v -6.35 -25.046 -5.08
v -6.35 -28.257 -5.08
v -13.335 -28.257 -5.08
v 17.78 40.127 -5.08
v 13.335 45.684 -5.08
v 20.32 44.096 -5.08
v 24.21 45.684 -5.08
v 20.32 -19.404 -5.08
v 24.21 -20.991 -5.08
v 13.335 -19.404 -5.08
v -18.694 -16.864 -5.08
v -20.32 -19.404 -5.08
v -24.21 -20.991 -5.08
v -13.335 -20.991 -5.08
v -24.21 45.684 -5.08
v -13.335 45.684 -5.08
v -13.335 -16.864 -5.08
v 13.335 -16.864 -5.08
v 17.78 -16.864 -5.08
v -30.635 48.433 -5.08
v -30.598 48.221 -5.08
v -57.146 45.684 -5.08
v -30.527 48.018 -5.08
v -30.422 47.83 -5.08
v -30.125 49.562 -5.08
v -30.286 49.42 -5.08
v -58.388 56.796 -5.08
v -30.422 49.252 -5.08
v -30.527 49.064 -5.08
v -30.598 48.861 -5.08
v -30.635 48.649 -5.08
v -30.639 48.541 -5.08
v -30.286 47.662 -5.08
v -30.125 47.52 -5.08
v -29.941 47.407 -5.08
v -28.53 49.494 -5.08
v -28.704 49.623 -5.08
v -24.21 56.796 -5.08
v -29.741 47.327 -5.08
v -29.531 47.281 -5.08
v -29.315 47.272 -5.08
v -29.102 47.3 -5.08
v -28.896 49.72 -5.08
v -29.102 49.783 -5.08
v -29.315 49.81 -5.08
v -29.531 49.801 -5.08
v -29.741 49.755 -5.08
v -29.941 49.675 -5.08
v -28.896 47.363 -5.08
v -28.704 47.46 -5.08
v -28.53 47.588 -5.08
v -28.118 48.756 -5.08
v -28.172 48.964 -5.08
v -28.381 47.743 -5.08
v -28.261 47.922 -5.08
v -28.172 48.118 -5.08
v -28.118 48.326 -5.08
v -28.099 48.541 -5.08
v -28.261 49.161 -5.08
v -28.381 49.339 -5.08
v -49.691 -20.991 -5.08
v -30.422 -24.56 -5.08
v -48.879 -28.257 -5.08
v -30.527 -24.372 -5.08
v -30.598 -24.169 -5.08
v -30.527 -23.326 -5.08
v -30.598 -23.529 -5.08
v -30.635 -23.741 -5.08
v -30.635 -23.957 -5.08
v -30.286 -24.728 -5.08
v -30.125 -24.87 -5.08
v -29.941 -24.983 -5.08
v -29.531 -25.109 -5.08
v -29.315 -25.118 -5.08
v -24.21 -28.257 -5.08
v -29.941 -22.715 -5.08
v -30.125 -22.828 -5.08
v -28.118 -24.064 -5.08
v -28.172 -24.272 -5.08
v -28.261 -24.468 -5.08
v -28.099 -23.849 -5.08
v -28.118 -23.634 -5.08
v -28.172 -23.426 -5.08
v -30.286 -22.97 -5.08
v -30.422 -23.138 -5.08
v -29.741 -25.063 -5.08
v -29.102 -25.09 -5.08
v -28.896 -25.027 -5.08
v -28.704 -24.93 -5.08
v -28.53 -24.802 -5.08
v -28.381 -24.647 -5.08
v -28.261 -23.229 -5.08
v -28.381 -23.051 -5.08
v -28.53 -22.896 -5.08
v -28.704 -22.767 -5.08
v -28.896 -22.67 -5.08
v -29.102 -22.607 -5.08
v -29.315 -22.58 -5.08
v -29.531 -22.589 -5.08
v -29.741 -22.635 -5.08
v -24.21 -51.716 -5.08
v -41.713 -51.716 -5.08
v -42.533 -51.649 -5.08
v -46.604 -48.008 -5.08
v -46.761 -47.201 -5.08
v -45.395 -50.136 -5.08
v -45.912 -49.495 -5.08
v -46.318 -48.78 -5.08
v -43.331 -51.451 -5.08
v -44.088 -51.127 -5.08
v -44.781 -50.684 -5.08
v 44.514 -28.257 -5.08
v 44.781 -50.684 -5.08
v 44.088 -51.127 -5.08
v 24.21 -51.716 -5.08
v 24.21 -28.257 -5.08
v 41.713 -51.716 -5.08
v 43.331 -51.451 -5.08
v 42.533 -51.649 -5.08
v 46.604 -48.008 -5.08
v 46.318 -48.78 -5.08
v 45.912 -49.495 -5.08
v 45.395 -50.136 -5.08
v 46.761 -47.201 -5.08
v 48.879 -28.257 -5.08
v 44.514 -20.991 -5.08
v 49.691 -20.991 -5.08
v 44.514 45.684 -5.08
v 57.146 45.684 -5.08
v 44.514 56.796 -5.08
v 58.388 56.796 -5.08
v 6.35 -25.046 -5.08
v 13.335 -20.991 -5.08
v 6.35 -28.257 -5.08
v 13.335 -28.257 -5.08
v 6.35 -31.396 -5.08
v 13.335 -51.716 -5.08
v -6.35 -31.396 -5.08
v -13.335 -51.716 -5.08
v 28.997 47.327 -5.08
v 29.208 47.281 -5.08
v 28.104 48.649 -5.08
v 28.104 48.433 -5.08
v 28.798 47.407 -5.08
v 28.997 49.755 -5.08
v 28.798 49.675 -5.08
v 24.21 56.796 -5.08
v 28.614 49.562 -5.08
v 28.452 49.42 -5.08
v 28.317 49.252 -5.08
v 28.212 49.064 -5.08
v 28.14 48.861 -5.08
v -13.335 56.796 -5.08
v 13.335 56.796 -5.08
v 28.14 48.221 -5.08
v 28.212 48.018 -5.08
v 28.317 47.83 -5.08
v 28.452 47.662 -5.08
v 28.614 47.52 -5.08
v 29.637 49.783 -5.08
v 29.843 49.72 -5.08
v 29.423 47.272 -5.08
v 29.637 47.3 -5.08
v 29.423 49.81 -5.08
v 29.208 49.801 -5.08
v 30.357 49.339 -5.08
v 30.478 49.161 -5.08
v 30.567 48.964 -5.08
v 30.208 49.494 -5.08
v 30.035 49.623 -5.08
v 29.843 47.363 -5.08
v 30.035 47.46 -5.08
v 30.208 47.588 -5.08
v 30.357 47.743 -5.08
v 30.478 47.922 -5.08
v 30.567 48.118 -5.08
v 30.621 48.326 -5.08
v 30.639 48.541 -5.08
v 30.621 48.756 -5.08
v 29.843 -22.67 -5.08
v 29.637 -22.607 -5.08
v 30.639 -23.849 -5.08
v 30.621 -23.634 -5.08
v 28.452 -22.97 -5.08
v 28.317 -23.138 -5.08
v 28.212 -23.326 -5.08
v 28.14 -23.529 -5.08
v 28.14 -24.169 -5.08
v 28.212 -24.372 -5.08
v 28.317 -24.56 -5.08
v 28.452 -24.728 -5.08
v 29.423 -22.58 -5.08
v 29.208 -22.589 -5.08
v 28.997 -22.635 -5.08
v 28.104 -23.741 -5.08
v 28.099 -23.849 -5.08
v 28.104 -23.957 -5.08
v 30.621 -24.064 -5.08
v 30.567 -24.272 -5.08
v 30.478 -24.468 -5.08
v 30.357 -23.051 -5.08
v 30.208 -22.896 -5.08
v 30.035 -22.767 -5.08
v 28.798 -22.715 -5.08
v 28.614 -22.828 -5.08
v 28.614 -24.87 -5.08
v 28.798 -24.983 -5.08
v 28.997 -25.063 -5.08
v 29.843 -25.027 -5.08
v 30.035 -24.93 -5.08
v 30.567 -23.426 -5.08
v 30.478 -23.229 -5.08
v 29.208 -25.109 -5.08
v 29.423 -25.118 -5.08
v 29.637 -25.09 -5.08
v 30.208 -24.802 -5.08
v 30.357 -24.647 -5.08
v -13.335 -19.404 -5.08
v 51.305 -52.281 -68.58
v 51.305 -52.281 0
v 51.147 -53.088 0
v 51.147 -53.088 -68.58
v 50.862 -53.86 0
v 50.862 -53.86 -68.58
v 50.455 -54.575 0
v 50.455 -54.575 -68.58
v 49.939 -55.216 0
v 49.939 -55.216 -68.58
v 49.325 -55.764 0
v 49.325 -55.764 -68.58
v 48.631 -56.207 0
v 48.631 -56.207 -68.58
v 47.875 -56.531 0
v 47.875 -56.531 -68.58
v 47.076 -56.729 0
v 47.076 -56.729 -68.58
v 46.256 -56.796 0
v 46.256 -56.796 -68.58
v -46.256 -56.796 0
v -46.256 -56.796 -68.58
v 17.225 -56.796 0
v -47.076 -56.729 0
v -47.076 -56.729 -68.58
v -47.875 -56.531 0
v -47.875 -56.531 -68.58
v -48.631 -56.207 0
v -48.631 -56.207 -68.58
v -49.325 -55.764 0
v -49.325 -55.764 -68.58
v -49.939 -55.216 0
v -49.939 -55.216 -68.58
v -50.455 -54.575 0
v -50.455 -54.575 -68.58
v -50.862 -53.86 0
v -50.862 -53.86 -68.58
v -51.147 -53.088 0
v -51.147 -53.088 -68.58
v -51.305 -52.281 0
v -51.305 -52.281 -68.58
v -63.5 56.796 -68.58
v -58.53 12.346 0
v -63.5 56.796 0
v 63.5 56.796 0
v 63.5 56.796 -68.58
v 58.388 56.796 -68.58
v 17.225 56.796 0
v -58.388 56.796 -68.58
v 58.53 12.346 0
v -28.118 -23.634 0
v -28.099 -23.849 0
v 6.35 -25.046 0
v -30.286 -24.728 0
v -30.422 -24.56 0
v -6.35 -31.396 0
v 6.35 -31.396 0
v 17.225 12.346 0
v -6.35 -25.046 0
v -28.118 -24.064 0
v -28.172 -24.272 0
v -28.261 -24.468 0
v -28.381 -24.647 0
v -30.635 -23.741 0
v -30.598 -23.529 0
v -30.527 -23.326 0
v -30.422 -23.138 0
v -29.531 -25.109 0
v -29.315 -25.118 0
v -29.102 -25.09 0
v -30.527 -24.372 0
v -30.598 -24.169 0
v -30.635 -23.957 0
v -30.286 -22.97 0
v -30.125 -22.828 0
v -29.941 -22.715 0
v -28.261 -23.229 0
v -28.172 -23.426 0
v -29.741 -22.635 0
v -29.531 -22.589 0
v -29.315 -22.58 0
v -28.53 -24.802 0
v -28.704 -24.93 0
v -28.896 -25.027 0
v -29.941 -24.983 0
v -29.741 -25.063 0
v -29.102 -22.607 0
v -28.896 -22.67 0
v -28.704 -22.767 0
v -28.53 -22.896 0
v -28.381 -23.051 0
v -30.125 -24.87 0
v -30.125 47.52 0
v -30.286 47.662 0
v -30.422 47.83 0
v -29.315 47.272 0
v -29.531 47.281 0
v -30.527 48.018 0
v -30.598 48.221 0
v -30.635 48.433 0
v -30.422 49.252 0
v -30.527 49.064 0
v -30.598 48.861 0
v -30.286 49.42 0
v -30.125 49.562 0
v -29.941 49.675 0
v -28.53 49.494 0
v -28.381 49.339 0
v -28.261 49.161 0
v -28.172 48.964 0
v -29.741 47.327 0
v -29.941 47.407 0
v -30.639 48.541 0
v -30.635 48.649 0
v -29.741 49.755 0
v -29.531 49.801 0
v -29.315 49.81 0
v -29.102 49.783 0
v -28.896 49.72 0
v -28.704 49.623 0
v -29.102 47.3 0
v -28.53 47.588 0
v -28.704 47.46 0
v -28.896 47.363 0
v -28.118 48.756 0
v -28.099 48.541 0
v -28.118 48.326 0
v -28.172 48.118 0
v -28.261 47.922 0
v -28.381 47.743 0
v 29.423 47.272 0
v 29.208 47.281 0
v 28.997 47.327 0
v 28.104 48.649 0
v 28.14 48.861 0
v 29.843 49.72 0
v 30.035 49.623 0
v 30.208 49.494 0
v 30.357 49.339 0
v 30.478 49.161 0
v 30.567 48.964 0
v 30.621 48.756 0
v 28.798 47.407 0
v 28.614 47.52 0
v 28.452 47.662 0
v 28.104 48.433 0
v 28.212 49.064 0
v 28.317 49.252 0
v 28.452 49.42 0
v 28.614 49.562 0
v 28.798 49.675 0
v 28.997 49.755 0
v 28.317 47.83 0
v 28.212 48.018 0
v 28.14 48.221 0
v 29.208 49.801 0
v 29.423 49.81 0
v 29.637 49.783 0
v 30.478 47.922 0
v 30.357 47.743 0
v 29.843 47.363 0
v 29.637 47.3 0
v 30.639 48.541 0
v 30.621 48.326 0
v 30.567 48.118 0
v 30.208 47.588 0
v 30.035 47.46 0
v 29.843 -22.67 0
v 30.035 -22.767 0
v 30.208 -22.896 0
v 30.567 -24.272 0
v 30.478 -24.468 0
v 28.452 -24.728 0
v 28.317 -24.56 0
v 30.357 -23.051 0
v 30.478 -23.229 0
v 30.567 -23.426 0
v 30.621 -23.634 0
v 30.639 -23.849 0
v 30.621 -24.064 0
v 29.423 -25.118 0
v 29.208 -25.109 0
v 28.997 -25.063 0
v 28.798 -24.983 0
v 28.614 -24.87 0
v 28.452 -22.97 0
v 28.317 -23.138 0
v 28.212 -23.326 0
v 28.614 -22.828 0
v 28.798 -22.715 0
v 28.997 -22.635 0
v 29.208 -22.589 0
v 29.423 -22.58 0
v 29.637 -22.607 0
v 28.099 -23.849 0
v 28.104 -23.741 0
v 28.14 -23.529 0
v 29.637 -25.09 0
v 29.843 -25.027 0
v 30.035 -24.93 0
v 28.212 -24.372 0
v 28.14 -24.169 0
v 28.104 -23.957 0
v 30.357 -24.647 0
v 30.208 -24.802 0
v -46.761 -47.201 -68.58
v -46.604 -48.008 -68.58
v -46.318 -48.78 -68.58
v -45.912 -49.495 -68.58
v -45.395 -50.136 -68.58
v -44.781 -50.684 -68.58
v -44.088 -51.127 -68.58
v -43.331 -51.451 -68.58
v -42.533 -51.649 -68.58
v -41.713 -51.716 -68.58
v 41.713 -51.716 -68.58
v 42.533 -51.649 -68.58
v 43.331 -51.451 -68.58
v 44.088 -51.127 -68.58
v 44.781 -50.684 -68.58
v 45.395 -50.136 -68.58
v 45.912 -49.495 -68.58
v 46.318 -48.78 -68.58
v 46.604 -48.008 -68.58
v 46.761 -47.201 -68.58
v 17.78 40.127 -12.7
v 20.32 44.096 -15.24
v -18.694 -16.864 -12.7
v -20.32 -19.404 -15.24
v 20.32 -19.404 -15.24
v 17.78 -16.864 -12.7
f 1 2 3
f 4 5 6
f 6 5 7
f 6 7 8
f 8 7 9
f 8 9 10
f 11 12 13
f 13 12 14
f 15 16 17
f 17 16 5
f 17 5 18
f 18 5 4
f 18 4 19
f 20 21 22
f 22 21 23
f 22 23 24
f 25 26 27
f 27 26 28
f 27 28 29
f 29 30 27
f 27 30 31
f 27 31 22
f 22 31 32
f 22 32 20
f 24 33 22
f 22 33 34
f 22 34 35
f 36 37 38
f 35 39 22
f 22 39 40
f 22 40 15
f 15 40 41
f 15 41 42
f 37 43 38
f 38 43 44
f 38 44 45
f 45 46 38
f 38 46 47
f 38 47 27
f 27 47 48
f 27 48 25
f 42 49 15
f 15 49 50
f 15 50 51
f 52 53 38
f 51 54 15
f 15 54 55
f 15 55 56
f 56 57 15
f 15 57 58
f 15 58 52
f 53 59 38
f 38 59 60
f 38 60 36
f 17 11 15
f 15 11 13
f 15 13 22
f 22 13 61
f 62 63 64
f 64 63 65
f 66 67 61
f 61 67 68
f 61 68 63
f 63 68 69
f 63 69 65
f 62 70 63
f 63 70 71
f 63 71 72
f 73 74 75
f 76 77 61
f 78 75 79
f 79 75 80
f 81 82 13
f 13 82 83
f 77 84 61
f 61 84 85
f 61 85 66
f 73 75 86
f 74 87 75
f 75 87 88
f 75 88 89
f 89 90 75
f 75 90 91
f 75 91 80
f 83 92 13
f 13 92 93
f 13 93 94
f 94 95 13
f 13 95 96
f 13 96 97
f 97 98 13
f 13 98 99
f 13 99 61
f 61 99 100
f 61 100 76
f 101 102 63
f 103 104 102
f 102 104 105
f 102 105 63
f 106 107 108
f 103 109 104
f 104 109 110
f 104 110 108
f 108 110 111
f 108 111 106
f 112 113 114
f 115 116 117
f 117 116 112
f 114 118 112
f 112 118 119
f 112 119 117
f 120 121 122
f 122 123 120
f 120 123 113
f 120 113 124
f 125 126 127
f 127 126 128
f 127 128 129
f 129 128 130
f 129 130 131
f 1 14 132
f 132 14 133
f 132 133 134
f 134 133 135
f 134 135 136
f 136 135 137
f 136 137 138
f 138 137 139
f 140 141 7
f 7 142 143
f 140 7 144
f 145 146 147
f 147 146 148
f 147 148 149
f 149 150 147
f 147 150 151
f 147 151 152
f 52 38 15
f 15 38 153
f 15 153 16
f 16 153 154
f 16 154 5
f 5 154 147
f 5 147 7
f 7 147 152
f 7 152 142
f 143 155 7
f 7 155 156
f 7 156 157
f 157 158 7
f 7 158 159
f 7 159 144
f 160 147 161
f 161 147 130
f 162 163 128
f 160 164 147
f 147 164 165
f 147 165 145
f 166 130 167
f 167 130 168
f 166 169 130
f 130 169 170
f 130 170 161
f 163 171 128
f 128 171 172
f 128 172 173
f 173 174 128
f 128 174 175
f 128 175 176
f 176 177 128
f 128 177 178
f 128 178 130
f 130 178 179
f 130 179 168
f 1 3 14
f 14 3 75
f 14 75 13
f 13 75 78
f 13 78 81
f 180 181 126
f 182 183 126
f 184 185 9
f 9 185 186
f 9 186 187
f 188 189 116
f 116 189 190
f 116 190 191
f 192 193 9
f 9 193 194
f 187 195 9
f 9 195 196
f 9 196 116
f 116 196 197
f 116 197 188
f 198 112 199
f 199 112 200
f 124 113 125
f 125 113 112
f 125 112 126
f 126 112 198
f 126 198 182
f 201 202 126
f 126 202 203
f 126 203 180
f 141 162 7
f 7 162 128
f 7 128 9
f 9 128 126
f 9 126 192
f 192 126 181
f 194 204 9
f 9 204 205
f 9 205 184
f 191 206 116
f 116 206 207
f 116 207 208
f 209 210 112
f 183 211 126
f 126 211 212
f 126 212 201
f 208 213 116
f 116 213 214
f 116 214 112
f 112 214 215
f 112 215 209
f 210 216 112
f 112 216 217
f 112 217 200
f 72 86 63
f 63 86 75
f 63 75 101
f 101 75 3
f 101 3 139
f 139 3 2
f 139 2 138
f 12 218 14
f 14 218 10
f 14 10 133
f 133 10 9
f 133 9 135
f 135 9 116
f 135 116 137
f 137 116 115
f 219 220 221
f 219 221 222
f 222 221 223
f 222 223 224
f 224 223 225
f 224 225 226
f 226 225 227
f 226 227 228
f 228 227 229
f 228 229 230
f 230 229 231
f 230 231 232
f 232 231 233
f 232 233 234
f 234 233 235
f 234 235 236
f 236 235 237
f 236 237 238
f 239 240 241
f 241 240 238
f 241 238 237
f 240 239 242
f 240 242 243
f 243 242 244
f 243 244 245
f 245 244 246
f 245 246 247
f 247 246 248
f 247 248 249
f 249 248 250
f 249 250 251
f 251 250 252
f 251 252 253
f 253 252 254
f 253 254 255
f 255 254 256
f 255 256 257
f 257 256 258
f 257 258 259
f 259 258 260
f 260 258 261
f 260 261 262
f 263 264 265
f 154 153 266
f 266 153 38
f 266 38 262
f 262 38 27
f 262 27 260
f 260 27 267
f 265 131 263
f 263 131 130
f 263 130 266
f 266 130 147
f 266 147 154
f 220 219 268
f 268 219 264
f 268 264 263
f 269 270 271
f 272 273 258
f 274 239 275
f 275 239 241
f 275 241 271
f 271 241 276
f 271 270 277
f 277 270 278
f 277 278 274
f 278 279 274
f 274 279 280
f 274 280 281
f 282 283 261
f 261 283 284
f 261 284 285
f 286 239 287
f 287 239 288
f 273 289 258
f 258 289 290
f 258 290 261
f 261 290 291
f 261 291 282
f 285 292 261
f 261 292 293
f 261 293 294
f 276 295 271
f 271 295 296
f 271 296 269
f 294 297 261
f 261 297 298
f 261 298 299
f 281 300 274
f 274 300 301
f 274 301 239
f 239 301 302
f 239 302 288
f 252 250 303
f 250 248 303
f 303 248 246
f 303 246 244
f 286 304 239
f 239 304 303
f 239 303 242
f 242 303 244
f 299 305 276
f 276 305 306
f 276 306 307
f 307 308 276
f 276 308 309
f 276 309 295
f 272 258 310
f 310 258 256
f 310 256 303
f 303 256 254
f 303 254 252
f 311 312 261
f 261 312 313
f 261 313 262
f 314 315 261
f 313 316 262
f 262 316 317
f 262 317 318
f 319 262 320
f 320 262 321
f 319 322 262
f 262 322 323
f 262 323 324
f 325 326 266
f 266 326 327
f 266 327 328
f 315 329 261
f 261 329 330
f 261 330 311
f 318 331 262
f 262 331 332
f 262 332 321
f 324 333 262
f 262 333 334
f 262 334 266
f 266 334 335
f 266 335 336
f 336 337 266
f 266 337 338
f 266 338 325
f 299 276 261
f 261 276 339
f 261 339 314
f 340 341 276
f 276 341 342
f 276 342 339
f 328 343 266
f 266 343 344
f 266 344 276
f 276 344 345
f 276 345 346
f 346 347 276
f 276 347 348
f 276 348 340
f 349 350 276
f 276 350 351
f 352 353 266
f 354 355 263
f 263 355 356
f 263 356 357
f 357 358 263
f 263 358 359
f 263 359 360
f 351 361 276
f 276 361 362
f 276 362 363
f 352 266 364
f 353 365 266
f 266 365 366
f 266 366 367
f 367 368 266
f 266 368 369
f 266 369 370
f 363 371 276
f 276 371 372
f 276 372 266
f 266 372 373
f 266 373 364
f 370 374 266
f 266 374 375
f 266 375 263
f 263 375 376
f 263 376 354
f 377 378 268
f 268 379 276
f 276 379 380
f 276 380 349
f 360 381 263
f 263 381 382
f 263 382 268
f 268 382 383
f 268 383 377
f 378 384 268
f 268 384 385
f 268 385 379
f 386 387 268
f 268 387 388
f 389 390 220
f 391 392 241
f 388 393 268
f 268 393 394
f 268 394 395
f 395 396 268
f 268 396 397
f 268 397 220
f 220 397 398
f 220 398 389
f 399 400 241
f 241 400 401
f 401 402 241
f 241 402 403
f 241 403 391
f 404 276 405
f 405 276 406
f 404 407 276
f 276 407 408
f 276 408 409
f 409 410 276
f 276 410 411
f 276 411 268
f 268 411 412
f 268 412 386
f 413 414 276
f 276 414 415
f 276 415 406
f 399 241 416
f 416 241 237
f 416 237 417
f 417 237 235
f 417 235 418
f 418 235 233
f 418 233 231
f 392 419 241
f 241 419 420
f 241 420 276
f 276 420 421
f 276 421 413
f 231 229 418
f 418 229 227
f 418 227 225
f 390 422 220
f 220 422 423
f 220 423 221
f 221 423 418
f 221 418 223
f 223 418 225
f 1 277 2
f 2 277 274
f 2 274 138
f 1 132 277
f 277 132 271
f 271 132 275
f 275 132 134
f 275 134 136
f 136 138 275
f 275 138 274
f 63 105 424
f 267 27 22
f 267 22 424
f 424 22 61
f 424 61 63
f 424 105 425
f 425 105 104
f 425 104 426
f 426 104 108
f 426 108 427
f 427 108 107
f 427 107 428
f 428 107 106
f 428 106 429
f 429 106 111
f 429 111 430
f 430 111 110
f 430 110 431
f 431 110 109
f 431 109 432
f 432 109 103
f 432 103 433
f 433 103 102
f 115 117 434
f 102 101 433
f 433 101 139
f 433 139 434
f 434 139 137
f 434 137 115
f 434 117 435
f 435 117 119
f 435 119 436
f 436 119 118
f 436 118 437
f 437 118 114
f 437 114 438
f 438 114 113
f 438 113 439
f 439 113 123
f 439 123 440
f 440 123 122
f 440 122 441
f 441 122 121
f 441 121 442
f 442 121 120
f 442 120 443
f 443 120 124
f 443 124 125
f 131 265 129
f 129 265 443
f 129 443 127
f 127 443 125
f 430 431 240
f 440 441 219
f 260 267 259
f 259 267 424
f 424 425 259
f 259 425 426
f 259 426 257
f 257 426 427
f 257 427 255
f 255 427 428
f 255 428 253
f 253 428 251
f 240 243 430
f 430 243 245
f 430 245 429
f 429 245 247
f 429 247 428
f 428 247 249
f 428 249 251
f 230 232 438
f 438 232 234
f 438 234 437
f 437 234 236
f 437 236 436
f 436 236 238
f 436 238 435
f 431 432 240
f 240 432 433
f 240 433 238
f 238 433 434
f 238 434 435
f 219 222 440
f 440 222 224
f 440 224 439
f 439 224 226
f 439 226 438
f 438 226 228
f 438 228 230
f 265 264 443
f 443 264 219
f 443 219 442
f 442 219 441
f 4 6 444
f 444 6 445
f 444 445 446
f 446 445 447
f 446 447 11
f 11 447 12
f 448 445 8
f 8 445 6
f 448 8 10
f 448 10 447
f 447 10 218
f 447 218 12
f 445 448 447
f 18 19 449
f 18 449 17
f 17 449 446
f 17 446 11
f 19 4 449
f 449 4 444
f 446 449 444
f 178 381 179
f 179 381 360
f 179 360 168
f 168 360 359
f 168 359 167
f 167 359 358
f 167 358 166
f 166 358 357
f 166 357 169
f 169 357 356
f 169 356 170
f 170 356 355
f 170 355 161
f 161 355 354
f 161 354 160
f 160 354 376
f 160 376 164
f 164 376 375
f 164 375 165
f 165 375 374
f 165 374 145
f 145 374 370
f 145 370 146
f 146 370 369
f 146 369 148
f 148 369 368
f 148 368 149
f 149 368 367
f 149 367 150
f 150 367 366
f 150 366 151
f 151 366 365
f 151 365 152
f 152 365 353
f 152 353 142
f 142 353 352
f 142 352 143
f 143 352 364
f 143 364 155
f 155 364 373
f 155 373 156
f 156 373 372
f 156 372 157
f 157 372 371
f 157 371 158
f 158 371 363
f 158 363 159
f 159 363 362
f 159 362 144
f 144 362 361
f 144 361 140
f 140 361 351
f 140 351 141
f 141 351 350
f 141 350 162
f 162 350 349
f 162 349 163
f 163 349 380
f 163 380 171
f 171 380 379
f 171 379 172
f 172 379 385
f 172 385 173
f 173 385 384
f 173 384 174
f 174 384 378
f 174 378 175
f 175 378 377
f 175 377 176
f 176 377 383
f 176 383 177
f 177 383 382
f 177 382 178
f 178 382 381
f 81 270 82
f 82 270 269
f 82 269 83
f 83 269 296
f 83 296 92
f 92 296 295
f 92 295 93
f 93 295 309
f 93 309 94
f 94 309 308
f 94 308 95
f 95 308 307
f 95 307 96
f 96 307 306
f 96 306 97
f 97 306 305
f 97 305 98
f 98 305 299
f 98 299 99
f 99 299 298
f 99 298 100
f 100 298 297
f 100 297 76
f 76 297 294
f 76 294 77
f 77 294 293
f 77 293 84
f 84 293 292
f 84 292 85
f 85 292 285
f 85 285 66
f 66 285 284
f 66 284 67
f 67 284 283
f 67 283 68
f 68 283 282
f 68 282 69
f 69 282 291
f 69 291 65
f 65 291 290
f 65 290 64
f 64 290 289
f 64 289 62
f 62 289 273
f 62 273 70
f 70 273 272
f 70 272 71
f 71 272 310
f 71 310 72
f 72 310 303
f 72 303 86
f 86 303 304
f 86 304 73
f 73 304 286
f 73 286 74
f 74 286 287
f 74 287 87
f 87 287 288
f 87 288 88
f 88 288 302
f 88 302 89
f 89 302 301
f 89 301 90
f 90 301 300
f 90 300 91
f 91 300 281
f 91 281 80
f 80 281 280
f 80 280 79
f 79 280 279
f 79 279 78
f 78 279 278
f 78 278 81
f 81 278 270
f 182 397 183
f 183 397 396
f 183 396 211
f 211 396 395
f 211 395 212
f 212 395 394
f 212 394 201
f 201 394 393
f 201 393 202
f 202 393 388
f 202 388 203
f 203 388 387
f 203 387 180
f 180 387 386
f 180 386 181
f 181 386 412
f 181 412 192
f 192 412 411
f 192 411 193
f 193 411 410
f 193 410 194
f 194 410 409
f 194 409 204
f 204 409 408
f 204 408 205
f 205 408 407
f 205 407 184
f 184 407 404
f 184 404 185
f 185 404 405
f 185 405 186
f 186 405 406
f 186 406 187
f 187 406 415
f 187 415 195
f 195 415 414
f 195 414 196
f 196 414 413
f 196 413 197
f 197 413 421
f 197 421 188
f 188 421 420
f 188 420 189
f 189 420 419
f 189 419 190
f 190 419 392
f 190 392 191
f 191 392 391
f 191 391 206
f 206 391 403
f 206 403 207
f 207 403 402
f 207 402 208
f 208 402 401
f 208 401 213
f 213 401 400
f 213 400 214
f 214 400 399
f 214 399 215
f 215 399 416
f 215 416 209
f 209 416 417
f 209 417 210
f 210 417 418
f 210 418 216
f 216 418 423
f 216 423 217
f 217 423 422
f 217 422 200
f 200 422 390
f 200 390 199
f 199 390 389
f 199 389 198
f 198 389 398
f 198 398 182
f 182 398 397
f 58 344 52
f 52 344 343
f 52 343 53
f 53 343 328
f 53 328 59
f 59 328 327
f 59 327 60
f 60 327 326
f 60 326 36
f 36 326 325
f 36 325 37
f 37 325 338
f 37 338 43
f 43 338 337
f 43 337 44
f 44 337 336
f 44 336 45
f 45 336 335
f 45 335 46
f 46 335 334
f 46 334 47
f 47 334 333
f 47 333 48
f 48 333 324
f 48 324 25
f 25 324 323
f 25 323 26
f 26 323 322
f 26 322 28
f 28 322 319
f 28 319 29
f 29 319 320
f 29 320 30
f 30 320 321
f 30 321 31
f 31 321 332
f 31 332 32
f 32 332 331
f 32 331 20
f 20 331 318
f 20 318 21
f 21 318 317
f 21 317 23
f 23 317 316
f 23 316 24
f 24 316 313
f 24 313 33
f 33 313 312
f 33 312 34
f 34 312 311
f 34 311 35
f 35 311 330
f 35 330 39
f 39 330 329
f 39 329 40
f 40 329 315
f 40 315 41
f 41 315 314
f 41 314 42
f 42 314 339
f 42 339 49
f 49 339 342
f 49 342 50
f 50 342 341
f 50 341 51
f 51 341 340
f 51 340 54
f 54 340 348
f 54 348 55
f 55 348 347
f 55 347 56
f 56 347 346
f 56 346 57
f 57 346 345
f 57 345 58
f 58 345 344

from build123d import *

# Parameters (mm, degrees)
SKETCH1_W           = 12.7
SKETCH1_H           = 6.35
BOSS_EXTRUDE1_DEPTH = 5.08
BOSS_EXTRUDE2_DEPTH = 63.5
BOSS_EXTRUDE3_DEPTH = 10.16
CUT_EXTRUDE1_DEPTH  = 7.62
SKETCH9_R           = 1.27
CUT_EXTRUDE2_DEPTH  = 5.08


with BuildPart() as part:
    # Sketch1 → Boss-Extrude1 (new body)
    with BuildSketch(Plane.XY):
        with BuildLine():
            Line((63.5, 56.7961272), (-63.5, 56.7961272))
            Line((-63.5, 56.7961272), (-51.304854459, -52.280570501))
            ThreePointArc((-51.304854459, -52.280570501), (-49.642976536, -55.502534499), (-46.25630987, -56.796126057))
            Line((-46.25630987, -56.796126057), (46.25630987, -56.796126057))
            ThreePointArc((46.25630987, -56.796126057), (49.642976536, -55.502534499), (51.304854459, -52.280570501))
            Line((51.304854459, -52.280570501), (63.5, 56.7961272))
        make_face()
        with Locations((0, -28.221126057)):
            Rectangle(SKETCH1_W, SKETCH1_H, mode=Mode.SUBTRACT)
    extrude(amount=-BOSS_EXTRUDE1_DEPTH)

    # Sketch2 → Boss-Extrude2 (add)
    with BuildSketch(Plane.XY.offset(-5.08)):
        with BuildLine():
            Line((51.304854459, -52.280570501), (63.5, 56.7961272))
            Line((63.5, 56.7961272), (58.388348603, 56.7961272))
            Line((58.388348603, 56.7961272), (46.761164329, -47.200570501))
            ThreePointArc((46.761164329, -47.200570501), (45.099286406, -50.422534499), (41.712619739, -51.716126057))
            Line((41.712619739, -51.716126057), (-41.712619739, -51.716126057))
            ThreePointArc((-41.712619739, -51.716126057), (-45.099286406, -50.422534499), (-46.761164329, -47.200570501))
            Line((-46.761164329, -47.200570501), (-58.388348603, 56.7961272))
            Line((-58.388348603, 56.7961272), (-63.5, 56.7961272))
            Line((-63.5, 56.7961272), (-51.304854459, -52.280570501))
            ThreePointArc((-51.304854459, -52.280570501), (-49.642976536, -55.502534499), (-46.25630987, -56.796126057))
            Line((-46.25630987, -56.796126057), (46.25630987, -56.796126057))
            ThreePointArc((46.25630987, -56.796126057), (49.642976536, -55.502534499), (51.304854459, -52.280570501))
        make_face()
    extrude(amount=-BOSS_EXTRUDE2_DEPTH)

    # Sketch4 → Boss-Extrude3 (add)
    with BuildSketch(Plane(origin=(0, 0, -5.08), x_dir=(-1, 0, 0), z_dir=(0, 0, -1))):
        Polygon((-20.319997003, 44.0961272), (-20.319997003, -19.4038728), (20.320002997, -19.4038728), align=None)
    extrude(amount=BOSS_EXTRUDE3_DEPTH)

    # Sketch7 → Cut-Extrude1 (cut)
    with BuildSketch(Plane(origin=(0, 0, -12.7), x_dir=(-1, 0, 0), z_dir=(0, 0, -1))):
        Polygon((18.694402997, -16.8638728), (-17.779997003, -16.8638728), (-17.779997003, 40.1273772), align=None)
    extrude(amount=-CUT_EXTRUDE1_DEPTH, mode=Mode.SUBTRACT)

    # Sketch9 → Cut-Extrude2 (cut)
    with BuildSketch(Plane.XY):
        with Locations((29.36937484, 48.5411272)):
            Circle(SKETCH9_R)
        with Locations((-29.36937484, 48.5411272)):
            Circle(SKETCH9_R)
        with Locations((29.36937484, -23.848871657)):
            Circle(SKETCH9_R)
        with Locations((-29.36937484, -23.848871657)):
            Circle(SKETCH9_R)
    extrude(amount=-CUT_EXTRUDE2_DEPTH, mode=Mode.SUBTRACT)


solid = part.part
